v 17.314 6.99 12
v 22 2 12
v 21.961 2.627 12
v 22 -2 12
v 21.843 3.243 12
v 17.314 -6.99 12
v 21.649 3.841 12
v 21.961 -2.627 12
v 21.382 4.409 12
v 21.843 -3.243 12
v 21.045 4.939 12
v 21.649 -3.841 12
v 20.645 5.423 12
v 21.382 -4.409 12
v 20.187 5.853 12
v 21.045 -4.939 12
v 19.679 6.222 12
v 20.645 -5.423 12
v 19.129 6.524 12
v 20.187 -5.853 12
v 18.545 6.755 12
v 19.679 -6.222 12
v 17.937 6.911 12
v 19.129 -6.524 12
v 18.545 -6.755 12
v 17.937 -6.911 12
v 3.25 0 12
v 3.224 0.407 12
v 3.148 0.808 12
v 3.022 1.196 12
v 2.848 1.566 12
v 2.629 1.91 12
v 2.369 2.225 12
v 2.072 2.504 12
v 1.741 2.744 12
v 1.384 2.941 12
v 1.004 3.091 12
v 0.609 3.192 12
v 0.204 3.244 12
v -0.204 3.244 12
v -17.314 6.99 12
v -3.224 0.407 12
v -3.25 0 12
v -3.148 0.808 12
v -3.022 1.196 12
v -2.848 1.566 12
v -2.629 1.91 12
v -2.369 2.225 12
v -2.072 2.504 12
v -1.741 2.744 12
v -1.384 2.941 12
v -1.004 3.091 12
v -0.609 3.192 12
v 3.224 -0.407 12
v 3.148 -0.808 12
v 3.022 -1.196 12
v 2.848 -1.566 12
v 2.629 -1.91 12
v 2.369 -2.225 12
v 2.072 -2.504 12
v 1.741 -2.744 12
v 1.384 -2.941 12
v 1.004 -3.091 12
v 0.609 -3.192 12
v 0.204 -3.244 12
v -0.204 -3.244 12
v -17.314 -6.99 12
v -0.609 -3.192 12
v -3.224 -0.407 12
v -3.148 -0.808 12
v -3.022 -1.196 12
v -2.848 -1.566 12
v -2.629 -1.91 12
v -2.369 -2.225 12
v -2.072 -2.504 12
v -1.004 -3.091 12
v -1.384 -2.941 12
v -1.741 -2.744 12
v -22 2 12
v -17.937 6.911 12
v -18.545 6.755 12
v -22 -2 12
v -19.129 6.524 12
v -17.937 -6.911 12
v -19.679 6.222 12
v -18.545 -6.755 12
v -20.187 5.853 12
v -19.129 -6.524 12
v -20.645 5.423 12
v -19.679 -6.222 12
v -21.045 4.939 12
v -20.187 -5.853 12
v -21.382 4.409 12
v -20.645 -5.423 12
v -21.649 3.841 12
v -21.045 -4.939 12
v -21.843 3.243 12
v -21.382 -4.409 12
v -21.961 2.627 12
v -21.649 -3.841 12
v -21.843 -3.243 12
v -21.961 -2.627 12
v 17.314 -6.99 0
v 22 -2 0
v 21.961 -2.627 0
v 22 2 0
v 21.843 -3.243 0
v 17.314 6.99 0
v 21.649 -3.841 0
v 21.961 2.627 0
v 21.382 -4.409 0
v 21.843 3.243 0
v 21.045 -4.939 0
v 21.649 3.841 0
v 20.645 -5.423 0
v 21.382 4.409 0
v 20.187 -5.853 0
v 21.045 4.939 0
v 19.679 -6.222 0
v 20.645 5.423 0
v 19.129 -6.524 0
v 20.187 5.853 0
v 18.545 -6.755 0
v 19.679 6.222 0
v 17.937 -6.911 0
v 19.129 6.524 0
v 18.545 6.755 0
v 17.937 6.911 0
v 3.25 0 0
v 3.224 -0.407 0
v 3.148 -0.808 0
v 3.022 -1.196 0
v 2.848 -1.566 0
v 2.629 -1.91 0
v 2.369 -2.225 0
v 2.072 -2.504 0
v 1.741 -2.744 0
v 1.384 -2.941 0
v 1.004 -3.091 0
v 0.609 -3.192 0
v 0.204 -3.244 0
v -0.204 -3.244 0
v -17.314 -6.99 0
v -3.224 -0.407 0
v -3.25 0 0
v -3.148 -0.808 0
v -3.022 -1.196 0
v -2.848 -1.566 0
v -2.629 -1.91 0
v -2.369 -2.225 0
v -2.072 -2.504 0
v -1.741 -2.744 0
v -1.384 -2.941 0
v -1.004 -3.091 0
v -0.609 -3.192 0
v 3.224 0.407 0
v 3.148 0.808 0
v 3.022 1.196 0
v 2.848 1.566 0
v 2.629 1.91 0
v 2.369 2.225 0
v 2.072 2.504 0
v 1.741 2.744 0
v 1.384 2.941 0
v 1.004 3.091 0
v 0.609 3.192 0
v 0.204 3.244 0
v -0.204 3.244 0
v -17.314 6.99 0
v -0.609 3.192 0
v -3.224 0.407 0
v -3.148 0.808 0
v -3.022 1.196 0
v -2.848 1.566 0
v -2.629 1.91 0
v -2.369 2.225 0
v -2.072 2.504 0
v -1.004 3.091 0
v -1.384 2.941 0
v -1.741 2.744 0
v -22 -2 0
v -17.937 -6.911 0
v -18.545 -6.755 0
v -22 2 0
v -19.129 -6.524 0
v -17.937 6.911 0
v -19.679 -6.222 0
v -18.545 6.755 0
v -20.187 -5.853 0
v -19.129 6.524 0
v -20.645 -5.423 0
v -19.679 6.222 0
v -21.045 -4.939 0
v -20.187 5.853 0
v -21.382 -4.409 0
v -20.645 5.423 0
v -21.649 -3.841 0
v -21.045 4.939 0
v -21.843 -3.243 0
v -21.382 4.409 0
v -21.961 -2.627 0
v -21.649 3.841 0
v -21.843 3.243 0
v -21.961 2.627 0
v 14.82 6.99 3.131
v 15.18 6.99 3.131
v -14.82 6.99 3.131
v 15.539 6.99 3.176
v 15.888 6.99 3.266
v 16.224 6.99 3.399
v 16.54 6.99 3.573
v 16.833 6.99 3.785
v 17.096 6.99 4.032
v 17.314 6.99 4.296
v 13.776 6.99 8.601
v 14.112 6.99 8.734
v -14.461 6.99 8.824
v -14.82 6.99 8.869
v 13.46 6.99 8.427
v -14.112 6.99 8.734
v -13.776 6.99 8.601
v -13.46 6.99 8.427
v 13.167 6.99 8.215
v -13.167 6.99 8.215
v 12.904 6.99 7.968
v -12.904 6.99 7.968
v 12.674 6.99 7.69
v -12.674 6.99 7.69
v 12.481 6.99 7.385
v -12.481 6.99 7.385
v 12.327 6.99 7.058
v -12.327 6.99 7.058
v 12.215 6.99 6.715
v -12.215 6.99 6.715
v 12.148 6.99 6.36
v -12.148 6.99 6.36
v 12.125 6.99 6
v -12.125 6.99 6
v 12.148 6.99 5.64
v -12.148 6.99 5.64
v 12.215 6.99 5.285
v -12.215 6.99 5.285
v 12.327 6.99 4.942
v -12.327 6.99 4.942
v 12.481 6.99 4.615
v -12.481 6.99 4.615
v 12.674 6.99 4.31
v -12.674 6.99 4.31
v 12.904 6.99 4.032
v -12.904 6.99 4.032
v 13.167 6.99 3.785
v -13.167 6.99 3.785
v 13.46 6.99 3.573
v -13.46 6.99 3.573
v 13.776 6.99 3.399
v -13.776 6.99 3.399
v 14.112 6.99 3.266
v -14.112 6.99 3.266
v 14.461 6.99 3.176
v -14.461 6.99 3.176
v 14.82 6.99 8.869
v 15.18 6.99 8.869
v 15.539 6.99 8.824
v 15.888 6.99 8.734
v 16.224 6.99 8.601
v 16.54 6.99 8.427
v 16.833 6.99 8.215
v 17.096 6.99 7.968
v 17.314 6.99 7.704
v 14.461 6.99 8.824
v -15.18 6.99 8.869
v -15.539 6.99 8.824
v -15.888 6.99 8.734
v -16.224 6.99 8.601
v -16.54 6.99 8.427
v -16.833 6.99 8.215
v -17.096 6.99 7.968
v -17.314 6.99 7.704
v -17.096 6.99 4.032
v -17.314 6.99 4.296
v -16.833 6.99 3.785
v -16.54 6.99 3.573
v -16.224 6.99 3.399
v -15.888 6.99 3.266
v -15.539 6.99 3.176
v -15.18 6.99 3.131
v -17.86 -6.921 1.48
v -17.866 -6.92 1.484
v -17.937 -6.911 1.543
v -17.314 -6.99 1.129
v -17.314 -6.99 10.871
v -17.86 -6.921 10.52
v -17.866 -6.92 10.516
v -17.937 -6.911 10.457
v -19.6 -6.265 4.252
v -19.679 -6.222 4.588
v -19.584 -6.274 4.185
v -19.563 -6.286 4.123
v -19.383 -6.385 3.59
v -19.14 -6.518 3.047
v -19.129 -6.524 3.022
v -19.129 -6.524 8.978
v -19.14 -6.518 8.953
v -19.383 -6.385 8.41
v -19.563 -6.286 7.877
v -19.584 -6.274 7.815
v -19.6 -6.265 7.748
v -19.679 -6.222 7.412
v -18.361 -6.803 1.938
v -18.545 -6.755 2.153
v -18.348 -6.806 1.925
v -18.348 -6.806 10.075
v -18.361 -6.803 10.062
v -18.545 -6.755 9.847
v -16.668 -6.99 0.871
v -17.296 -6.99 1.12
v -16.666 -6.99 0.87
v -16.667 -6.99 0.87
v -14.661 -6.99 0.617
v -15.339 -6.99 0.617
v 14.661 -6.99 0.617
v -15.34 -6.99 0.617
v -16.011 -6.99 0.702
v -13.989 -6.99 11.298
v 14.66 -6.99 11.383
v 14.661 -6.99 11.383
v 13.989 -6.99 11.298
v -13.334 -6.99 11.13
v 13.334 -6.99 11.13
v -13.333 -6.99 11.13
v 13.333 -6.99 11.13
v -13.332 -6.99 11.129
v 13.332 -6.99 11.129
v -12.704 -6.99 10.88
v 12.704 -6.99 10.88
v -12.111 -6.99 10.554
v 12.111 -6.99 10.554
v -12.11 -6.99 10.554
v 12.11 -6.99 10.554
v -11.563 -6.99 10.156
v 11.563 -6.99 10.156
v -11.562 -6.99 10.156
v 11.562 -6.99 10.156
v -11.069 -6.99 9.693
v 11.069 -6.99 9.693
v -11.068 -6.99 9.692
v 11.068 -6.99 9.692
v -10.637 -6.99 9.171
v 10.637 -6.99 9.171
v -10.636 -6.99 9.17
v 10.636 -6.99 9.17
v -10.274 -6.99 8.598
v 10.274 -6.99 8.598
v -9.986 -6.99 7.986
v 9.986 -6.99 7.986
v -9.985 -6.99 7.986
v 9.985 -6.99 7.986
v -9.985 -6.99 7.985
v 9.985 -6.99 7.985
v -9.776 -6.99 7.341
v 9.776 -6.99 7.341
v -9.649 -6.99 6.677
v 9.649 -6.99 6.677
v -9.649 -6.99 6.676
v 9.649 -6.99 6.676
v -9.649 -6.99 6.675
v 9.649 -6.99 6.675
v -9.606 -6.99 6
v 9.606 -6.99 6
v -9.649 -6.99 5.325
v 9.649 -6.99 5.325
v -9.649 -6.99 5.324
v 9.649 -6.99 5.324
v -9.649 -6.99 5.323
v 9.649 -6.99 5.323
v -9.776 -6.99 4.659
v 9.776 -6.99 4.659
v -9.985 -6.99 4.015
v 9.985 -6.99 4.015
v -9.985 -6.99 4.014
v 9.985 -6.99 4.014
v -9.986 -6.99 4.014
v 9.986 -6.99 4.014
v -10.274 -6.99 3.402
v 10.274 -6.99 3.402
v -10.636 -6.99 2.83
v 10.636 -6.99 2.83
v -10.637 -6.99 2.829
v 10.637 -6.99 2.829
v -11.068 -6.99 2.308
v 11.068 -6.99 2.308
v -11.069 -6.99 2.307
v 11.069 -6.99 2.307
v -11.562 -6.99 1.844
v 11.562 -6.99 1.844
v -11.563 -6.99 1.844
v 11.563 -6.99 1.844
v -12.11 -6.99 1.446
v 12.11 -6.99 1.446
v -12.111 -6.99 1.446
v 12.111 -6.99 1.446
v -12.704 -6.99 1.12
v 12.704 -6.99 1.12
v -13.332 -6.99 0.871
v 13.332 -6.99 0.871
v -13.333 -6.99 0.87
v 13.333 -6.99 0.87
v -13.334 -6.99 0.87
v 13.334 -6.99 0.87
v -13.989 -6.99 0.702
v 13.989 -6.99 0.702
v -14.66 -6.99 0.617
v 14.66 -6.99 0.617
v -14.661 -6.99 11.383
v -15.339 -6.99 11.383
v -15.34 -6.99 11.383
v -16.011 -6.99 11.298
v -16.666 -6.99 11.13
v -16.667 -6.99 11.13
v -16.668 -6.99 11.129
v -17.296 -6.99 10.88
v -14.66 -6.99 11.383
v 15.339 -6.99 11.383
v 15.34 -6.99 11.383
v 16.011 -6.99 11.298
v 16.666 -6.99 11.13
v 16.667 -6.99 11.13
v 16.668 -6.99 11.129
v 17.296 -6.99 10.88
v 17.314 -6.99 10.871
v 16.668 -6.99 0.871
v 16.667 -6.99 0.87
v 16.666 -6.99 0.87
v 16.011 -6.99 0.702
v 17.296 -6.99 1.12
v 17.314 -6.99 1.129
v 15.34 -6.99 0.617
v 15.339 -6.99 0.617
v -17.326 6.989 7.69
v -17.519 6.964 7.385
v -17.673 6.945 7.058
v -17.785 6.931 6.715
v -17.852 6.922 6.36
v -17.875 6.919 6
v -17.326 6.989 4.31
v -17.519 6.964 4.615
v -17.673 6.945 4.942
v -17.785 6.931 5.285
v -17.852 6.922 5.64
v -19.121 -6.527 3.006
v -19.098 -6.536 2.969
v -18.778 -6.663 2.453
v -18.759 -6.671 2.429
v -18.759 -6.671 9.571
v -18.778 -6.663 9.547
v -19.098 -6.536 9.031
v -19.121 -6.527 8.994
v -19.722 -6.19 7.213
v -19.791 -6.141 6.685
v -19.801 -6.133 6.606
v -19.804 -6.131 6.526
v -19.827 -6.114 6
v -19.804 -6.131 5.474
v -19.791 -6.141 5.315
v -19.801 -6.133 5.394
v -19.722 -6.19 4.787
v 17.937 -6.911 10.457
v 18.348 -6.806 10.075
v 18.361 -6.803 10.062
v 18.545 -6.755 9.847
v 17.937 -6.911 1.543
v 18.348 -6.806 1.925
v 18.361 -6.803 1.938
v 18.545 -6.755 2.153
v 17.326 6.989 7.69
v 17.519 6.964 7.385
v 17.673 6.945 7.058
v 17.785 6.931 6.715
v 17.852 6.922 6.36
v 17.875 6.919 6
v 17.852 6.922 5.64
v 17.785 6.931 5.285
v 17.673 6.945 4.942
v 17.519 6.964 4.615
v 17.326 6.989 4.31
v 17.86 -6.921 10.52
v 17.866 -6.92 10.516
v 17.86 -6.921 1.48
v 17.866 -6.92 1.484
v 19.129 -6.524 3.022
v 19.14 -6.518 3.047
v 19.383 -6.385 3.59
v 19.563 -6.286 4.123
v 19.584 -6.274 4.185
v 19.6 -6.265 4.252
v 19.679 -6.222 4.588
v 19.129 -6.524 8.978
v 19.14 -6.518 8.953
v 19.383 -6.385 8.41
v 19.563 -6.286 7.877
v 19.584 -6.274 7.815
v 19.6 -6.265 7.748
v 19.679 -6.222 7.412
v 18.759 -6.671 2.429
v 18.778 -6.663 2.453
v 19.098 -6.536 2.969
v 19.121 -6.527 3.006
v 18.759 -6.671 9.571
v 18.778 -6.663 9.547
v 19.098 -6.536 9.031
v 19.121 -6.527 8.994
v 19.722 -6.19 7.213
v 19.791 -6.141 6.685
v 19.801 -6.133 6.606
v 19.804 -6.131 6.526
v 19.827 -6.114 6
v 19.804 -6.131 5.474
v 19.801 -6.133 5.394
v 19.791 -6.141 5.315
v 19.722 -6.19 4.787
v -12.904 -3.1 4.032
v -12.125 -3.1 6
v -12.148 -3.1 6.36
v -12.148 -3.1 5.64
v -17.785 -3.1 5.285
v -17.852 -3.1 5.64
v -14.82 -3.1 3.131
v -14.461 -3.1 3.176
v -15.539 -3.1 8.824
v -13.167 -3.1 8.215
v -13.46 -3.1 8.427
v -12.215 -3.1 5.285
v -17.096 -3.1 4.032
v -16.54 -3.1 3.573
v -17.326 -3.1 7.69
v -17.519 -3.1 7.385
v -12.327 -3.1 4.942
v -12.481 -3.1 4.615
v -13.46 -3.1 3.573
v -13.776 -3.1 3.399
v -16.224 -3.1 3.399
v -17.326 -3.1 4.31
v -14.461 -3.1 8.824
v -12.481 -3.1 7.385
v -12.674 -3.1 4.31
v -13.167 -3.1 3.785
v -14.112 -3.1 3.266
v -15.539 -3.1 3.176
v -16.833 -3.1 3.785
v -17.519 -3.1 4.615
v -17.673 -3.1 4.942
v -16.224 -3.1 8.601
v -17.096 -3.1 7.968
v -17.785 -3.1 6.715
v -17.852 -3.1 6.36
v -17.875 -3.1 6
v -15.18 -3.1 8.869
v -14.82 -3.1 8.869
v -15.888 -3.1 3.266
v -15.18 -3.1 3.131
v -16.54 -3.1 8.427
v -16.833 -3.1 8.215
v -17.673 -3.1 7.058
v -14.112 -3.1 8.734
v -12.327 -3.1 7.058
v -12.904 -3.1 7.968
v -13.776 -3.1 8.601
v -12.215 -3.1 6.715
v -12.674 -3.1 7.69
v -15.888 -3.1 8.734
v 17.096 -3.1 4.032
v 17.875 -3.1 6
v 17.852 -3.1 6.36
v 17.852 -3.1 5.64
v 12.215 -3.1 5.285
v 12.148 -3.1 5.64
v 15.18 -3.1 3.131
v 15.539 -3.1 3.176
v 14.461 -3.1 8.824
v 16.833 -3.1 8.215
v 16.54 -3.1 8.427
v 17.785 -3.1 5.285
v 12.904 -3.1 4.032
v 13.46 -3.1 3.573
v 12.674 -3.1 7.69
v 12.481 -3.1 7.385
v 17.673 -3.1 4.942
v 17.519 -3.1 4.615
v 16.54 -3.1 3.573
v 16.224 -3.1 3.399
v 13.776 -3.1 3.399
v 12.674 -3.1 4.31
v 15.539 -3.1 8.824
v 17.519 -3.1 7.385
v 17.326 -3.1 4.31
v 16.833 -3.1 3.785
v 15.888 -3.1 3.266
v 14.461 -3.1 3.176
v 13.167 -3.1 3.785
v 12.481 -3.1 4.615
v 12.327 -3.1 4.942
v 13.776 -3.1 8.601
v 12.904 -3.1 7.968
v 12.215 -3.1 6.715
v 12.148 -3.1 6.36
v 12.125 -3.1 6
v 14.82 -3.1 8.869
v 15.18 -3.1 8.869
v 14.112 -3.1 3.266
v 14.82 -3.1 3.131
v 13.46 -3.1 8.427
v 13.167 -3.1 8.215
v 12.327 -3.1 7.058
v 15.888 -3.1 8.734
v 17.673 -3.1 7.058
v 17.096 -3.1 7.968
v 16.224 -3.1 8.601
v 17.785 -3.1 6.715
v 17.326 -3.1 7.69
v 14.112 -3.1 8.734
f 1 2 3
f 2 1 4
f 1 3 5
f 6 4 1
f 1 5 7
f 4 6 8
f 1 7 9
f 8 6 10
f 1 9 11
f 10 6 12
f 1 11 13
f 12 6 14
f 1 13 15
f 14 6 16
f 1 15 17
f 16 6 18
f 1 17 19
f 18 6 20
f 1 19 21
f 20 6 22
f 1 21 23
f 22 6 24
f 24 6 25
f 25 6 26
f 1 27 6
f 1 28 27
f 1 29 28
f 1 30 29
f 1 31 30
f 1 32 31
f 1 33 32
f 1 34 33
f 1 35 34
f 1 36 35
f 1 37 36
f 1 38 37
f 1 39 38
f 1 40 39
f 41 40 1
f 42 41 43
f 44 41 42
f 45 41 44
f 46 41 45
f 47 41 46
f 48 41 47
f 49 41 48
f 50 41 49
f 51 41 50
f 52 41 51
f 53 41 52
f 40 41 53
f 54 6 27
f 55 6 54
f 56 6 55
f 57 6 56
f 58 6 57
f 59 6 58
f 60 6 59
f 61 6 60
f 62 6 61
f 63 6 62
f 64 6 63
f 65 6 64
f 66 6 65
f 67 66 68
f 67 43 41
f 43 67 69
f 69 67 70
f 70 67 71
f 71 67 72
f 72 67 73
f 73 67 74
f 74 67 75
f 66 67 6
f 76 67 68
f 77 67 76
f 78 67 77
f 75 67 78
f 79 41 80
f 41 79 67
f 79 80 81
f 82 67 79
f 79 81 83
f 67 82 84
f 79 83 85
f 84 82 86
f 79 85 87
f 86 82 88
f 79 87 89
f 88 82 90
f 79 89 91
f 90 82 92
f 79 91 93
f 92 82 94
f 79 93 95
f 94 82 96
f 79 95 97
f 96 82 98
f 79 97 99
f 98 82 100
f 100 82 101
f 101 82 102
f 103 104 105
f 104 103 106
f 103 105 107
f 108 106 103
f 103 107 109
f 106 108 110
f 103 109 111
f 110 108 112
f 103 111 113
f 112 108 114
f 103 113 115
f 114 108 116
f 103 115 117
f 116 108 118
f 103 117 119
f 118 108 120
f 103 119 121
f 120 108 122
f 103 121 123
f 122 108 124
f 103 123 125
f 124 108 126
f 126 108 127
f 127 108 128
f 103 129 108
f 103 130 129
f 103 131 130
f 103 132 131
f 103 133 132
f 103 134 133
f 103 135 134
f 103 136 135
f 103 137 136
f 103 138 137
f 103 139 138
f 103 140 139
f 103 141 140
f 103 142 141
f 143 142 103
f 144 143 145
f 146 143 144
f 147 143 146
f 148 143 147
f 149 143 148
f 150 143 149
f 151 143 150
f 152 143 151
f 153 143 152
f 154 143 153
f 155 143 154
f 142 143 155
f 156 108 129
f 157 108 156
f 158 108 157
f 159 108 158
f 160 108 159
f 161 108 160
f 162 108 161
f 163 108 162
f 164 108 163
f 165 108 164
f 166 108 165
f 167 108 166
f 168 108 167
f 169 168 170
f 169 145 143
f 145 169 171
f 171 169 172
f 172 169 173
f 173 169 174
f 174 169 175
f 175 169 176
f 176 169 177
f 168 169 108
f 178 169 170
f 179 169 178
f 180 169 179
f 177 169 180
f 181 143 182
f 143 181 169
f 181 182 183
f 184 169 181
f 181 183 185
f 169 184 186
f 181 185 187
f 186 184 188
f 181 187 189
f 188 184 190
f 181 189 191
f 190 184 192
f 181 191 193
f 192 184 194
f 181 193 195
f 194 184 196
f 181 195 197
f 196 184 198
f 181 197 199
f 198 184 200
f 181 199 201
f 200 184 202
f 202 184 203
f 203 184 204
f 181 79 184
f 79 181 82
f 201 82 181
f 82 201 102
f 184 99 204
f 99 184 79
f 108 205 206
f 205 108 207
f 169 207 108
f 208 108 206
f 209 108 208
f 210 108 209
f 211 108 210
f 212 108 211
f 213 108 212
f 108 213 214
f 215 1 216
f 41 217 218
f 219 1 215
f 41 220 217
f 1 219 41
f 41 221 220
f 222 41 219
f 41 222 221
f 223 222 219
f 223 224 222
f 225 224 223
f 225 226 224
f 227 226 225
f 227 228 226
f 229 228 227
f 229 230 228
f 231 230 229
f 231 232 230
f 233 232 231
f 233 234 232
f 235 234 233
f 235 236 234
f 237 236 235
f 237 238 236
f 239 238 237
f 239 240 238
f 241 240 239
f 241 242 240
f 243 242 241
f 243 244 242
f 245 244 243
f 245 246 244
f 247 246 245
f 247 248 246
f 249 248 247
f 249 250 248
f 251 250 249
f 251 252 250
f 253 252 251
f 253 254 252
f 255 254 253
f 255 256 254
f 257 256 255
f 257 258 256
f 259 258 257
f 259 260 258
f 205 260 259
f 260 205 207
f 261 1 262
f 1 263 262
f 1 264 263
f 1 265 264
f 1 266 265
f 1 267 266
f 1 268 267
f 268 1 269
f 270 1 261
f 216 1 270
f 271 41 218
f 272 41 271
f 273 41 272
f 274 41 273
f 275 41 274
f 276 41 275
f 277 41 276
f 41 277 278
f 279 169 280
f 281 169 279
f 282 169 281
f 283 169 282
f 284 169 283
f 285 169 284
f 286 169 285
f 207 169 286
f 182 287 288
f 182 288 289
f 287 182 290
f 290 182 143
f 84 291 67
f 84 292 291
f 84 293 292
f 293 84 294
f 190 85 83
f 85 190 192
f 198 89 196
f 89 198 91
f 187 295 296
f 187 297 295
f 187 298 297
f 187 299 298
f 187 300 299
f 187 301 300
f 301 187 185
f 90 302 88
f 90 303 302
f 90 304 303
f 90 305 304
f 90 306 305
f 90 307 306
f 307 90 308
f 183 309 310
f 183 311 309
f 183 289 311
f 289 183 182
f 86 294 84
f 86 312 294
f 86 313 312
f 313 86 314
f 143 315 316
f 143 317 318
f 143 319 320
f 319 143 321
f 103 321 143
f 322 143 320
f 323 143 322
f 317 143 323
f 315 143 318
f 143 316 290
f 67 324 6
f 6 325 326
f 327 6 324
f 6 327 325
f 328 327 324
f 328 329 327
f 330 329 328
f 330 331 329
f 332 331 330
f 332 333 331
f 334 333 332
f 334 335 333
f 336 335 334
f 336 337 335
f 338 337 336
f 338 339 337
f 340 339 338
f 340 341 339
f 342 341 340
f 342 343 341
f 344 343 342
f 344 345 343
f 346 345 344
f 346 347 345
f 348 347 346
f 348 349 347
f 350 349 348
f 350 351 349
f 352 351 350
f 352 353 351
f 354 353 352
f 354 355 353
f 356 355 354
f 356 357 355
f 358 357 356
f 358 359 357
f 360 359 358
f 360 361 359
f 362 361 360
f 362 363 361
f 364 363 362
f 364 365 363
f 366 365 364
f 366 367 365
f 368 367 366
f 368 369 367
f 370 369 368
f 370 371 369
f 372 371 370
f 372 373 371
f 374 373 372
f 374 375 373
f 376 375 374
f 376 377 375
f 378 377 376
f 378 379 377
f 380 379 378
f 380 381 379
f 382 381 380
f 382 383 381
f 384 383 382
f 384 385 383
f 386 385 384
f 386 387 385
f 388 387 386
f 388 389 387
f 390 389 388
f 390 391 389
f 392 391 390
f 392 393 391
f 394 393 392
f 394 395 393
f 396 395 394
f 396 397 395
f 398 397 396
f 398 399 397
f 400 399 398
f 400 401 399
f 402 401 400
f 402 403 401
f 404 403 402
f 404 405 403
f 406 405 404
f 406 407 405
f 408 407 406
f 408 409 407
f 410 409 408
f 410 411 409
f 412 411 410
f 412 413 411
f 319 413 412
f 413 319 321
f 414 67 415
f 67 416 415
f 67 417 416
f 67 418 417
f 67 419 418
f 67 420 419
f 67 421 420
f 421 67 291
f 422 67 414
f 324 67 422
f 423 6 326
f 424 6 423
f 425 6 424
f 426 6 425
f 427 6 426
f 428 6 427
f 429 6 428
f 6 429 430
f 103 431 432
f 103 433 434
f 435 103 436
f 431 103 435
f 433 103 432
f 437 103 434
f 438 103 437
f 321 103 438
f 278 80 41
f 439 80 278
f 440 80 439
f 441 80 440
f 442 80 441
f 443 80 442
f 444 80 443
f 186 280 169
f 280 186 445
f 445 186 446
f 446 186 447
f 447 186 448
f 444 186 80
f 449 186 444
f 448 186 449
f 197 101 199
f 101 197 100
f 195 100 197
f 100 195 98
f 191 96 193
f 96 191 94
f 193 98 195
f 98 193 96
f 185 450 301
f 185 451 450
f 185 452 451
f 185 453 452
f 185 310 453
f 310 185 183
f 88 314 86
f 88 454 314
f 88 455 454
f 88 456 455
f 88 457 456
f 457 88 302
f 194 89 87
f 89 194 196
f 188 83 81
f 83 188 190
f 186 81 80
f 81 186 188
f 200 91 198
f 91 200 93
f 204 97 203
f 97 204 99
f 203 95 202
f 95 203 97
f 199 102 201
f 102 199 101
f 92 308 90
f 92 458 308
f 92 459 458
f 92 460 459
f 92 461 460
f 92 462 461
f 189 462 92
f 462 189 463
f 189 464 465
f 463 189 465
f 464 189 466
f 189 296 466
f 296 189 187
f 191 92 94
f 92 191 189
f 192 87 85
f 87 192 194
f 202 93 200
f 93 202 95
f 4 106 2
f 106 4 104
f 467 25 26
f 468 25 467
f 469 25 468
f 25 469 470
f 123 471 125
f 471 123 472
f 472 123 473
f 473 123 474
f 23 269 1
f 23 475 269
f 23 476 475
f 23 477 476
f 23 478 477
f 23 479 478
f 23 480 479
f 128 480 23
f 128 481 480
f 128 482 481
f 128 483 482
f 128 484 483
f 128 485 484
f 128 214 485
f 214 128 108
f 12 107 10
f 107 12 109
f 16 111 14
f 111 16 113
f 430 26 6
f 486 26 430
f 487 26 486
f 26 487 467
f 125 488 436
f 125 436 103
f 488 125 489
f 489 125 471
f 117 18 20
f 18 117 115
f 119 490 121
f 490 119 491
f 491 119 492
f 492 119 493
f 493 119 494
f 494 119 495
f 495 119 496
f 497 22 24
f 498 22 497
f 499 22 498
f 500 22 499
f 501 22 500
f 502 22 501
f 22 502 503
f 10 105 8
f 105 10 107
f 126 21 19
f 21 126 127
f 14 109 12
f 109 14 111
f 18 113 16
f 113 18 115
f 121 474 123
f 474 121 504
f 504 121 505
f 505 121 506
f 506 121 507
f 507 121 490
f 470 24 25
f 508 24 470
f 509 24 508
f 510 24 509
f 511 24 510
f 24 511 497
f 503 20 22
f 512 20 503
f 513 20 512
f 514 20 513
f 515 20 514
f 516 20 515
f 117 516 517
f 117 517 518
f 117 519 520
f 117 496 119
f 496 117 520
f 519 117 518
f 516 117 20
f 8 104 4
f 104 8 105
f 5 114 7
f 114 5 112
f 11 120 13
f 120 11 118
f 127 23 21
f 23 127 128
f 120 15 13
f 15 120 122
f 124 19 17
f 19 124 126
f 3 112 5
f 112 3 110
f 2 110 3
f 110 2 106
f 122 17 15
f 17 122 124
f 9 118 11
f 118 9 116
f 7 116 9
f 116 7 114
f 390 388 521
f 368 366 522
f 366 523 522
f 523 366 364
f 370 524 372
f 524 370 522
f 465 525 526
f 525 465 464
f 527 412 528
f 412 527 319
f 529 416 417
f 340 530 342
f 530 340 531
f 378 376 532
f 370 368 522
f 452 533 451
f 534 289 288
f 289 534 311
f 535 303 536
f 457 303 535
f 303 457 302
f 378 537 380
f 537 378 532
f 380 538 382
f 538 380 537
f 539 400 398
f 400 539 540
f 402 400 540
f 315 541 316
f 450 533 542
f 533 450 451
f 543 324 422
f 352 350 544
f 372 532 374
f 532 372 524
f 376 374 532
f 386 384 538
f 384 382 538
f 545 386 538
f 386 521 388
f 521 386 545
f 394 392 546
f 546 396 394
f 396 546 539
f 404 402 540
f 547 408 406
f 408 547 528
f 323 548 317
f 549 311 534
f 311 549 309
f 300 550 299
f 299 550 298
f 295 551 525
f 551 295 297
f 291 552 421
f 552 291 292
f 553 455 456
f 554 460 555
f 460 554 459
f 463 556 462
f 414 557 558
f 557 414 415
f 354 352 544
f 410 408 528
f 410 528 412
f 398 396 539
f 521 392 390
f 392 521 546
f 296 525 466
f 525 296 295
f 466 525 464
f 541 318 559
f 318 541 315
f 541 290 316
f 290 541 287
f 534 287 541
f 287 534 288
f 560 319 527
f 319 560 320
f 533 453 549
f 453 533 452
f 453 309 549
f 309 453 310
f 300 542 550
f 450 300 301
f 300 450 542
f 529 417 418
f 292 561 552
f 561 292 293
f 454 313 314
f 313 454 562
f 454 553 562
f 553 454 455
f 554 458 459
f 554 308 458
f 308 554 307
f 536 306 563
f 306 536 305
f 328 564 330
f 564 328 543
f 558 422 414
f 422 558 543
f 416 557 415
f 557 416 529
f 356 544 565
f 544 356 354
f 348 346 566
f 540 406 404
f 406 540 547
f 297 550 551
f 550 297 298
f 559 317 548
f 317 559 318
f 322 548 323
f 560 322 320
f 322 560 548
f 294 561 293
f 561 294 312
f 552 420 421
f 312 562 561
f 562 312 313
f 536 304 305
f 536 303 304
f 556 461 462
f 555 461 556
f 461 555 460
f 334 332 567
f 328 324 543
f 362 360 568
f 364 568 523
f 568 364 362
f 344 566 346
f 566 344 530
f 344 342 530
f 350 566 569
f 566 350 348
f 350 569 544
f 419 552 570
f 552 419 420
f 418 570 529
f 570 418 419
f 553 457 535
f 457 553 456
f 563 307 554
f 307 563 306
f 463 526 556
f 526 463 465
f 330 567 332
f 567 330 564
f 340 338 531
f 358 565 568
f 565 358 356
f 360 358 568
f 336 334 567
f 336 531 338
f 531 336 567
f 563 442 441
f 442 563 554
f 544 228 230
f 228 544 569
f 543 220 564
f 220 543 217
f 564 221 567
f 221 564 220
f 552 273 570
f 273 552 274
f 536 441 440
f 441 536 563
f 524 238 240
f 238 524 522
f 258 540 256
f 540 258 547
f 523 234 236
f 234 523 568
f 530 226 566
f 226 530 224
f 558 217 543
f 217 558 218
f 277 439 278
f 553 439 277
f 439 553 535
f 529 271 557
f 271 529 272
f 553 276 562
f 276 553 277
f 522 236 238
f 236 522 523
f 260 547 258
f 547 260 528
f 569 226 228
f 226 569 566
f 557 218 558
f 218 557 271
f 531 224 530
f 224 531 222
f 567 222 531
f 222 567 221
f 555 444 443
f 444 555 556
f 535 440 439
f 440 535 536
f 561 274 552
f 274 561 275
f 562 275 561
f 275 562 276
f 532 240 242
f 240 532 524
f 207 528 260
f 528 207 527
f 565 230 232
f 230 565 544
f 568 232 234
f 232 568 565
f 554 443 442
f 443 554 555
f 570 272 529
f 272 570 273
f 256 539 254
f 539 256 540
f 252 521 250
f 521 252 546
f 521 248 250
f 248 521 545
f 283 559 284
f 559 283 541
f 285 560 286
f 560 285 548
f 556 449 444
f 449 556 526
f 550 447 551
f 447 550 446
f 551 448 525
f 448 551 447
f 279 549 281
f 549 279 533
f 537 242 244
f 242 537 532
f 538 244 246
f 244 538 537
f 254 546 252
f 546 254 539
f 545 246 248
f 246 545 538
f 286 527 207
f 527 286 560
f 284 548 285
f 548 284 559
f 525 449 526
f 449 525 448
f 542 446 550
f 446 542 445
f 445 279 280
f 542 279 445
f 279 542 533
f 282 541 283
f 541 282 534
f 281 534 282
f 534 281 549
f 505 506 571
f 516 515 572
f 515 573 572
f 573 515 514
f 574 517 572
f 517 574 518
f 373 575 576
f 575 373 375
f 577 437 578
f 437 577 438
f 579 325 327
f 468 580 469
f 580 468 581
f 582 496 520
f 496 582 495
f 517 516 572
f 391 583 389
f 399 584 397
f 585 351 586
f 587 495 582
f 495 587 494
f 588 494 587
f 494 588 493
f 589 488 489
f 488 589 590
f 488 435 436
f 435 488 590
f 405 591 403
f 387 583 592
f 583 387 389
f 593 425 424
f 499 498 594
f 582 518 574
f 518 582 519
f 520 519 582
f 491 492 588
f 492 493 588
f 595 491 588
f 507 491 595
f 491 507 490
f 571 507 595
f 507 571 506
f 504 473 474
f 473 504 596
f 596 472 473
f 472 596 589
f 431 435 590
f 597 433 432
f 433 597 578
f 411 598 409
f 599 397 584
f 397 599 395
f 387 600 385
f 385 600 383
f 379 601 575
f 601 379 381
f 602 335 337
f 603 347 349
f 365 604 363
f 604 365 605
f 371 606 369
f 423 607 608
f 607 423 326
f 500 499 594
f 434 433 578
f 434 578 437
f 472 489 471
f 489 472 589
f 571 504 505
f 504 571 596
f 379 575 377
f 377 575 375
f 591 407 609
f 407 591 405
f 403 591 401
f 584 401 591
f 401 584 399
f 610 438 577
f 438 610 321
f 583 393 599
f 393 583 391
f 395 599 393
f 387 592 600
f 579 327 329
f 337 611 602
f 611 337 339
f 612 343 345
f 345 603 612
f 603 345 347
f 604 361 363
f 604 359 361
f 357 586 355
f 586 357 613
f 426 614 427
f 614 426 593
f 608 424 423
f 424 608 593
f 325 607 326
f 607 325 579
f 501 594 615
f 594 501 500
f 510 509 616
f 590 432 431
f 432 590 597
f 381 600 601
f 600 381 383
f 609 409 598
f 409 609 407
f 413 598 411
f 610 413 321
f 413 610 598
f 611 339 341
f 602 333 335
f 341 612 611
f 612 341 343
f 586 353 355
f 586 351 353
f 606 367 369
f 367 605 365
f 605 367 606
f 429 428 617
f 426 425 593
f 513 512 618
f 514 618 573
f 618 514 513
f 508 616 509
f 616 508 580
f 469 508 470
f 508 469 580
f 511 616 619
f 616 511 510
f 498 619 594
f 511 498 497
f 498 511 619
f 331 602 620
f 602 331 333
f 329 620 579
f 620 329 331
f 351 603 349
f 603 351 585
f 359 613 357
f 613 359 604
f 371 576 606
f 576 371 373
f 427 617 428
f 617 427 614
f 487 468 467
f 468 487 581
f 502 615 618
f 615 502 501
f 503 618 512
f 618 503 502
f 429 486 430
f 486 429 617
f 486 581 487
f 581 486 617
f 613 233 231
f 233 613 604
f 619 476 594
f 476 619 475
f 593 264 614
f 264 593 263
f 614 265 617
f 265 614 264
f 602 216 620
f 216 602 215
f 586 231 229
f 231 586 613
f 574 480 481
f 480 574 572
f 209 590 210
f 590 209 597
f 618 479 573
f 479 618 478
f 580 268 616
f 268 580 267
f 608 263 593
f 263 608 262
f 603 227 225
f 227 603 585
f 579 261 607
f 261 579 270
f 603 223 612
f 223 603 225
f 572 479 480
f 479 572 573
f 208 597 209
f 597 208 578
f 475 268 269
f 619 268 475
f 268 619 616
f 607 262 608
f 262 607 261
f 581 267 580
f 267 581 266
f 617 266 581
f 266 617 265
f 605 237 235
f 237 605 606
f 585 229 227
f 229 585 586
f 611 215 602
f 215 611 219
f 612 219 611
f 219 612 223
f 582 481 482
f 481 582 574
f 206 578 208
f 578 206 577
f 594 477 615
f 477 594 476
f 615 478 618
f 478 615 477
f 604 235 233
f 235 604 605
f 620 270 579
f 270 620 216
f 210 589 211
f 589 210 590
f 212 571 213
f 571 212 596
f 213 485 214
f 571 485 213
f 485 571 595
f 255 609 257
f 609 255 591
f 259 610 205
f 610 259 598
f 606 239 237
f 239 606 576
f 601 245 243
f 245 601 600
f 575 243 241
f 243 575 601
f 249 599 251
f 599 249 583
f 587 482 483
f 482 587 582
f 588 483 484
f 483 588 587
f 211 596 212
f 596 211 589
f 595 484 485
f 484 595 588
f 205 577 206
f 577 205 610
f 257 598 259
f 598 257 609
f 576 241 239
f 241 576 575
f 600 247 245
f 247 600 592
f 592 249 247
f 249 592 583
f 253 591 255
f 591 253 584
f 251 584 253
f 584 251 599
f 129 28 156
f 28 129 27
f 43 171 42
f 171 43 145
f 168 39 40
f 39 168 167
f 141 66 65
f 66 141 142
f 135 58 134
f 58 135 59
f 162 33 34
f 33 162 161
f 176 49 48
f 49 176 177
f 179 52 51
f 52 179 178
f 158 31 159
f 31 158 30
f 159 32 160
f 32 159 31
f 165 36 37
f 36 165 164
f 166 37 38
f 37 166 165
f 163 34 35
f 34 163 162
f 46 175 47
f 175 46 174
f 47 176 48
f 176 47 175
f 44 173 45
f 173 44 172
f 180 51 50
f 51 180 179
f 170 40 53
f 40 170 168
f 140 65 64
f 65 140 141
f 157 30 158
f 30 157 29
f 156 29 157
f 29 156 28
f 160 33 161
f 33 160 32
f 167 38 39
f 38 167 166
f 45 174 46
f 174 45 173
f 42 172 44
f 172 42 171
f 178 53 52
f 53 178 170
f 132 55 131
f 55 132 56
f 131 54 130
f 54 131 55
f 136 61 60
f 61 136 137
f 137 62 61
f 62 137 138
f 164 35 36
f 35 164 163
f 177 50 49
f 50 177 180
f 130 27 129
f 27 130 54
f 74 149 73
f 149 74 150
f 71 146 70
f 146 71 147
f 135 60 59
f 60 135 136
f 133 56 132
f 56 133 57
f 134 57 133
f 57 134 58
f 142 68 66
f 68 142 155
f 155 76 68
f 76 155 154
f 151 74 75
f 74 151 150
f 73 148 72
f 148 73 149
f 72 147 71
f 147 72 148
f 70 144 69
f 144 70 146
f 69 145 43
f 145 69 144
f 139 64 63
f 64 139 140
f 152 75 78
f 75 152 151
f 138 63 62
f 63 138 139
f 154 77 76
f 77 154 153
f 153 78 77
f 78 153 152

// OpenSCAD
$fn = 50;


difference() {
	union() {
		cylinder(h = 12, r = 7.0000000000);
		translate(v = [-7.5000000000, 0.0000000000, 0]) {
			hull() {
				translate(v = [-9.5000000000, 2.0000000000, 0]) {
					cylinder(h = 12, r = 5);
				}
				translate(v = [9.5000000000, 2.0000000000, 0]) {
					cylinder(h = 12, r = 5);
				}
				translate(v = [-9.5000000000, -2.0000000000, 0]) {
					cylinder(h = 12, r = 5);
				}
				translate(v = [9.5000000000, -2.0000000000, 0]) {
					cylinder(h = 12, r = 5);
				}
			}
		}
		translate(v = [7.5000000000, 0.0000000000, 0]) {
			hull() {
				translate(v = [-9.5000000000, 2.0000000000, 0]) {
					cylinder(h = 12, r = 5);
				}
				translate(v = [9.5000000000, 2.0000000000, 0]) {
					cylinder(h = 12, r = 5);
				}
				translate(v = [-9.5000000000, -2.0000000000, 0]) {
					cylinder(h = 12, r = 5);
				}
				translate(v = [9.5000000000, -2.0000000000, 0]) {
					cylinder(h = 12, r = 5);
				}
			}
		}
	}
	union() {
		translate(v = [-15.0000000000, -7.0000000000, 6.0000000000]) {
			rotate(a = [90, 0, 0]) {
				difference() {
					union() {
						#translate(v = [0, 0, -14.0000000000]) {
							cylinder(h = 14, r = 2.6000000000);
						}
						#translate(v = [0, 0, -3.9000000000]) {
							cylinder(h = 3.9000000000, r1 = 2.8750000000, r2 = 5.4000000000);
						}
						#translate(v = [0, 0, -14.0000000000]) {
							cylinder(h = 14, r = 2.8750000000);
						}
						#translate(v = [0, 0, -14.0000000000]) {
							cylinder(h = 14, r = 2.6000000000);
						}
					}
					union();
				}
			}
		}
		translate(v = [15.0000000000, -7.0000000000, 6.0000000000]) {
			rotate(a = [90, 0, 0]) {
				difference() {
					union() {
						#translate(v = [0, 0, -14.0000000000]) {
							cylinder(h = 14, r = 2.6000000000);
						}
						#translate(v = [0, 0, -3.9000000000]) {
							cylinder(h = 3.9000000000, r1 = 2.8750000000, r2 = 5.4000000000);
						}
						#translate(v = [0, 0, -14.0000000000]) {
							cylinder(h = 14, r = 2.8750000000);
						}
						#translate(v = [0, 0, -14.0000000000]) {
							cylinder(h = 14, r = 2.6000000000);
						}
					}
					union();
				}
			}
		}
		translate(v = [0, 0, -100]) {
			cylinder(h = 200, r = 3.2500000000);
		}
		translate(v = [0, 0, -100]) {
			cylinder(h = 200, r = 1.8000000000);
		}
	}
}
